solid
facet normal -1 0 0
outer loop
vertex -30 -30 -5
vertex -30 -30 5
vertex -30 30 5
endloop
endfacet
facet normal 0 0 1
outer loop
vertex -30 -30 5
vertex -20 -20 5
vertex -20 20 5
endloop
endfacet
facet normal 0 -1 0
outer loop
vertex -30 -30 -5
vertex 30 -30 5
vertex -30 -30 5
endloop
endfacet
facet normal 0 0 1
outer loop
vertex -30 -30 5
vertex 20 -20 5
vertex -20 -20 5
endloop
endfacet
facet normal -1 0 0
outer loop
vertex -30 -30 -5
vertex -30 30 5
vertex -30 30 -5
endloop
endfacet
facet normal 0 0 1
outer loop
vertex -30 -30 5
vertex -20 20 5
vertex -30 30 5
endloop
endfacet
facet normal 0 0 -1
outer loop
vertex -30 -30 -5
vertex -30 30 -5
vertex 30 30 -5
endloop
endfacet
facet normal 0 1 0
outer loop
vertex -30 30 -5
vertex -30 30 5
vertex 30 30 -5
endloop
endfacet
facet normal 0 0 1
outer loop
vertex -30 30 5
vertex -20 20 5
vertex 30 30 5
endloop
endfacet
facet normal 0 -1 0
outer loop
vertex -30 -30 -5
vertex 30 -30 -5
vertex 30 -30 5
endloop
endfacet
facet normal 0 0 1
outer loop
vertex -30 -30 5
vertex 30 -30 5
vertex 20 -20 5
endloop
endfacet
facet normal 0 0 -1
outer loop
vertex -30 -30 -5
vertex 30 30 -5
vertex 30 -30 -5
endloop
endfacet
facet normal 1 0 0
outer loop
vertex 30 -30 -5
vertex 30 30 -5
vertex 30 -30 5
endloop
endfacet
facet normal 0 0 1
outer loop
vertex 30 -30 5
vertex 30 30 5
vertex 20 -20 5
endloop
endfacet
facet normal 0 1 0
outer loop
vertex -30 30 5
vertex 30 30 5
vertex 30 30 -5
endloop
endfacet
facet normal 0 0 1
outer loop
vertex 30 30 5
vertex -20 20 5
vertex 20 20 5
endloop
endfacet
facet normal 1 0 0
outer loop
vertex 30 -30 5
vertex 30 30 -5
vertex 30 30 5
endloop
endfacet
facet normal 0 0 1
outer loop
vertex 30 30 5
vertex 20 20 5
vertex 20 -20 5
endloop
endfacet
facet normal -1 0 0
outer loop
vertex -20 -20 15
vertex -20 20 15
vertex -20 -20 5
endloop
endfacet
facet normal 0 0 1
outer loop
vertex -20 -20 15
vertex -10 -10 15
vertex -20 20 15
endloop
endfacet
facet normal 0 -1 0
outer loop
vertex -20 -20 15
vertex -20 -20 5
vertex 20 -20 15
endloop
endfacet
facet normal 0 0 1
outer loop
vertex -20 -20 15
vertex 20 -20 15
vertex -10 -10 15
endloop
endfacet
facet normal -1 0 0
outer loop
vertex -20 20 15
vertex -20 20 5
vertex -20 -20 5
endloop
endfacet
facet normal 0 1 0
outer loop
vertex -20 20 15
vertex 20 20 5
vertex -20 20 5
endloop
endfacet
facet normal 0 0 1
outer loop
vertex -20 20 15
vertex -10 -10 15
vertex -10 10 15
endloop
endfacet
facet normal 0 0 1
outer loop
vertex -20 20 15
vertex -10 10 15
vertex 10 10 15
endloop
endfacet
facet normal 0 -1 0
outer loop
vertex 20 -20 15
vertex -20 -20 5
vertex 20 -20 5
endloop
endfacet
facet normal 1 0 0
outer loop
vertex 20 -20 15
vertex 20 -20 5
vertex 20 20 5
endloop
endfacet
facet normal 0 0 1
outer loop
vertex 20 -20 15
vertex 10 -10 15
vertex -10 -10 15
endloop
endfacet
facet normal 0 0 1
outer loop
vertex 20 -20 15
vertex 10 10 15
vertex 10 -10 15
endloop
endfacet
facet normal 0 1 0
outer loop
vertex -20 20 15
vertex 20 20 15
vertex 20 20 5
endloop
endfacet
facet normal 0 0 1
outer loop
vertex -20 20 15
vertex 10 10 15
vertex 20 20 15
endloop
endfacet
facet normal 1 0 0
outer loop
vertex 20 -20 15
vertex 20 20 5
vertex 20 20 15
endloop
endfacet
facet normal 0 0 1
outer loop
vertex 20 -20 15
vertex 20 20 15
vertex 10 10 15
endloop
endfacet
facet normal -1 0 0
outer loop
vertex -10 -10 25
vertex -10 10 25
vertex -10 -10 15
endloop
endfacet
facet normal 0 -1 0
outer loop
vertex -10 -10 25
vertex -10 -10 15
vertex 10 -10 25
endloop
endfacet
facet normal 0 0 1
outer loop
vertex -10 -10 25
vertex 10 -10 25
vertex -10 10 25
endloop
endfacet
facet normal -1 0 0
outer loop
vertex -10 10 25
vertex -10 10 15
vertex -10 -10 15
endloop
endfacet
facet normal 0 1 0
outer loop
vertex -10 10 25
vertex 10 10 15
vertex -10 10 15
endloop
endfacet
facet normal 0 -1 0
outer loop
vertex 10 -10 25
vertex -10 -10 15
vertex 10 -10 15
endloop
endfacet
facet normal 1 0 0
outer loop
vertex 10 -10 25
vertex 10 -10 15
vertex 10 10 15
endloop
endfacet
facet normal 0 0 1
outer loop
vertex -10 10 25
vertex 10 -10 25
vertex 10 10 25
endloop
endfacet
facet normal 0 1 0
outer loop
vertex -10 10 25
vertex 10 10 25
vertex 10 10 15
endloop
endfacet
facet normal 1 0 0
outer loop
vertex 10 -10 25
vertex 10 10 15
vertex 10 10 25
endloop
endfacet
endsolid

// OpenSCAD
// 3段の階段状ピラミッド

// 1段目（底面）
translate([0, 0, 0])
    cube([60, 60, 10], center = true);

// 2段目（中央）
translate([0, 0, 10])
    cube([40, 40, 10], center = true);

// 3段目（最上段）
translate([0, 0, 20])
    cube([20, 20, 10], center = true);
